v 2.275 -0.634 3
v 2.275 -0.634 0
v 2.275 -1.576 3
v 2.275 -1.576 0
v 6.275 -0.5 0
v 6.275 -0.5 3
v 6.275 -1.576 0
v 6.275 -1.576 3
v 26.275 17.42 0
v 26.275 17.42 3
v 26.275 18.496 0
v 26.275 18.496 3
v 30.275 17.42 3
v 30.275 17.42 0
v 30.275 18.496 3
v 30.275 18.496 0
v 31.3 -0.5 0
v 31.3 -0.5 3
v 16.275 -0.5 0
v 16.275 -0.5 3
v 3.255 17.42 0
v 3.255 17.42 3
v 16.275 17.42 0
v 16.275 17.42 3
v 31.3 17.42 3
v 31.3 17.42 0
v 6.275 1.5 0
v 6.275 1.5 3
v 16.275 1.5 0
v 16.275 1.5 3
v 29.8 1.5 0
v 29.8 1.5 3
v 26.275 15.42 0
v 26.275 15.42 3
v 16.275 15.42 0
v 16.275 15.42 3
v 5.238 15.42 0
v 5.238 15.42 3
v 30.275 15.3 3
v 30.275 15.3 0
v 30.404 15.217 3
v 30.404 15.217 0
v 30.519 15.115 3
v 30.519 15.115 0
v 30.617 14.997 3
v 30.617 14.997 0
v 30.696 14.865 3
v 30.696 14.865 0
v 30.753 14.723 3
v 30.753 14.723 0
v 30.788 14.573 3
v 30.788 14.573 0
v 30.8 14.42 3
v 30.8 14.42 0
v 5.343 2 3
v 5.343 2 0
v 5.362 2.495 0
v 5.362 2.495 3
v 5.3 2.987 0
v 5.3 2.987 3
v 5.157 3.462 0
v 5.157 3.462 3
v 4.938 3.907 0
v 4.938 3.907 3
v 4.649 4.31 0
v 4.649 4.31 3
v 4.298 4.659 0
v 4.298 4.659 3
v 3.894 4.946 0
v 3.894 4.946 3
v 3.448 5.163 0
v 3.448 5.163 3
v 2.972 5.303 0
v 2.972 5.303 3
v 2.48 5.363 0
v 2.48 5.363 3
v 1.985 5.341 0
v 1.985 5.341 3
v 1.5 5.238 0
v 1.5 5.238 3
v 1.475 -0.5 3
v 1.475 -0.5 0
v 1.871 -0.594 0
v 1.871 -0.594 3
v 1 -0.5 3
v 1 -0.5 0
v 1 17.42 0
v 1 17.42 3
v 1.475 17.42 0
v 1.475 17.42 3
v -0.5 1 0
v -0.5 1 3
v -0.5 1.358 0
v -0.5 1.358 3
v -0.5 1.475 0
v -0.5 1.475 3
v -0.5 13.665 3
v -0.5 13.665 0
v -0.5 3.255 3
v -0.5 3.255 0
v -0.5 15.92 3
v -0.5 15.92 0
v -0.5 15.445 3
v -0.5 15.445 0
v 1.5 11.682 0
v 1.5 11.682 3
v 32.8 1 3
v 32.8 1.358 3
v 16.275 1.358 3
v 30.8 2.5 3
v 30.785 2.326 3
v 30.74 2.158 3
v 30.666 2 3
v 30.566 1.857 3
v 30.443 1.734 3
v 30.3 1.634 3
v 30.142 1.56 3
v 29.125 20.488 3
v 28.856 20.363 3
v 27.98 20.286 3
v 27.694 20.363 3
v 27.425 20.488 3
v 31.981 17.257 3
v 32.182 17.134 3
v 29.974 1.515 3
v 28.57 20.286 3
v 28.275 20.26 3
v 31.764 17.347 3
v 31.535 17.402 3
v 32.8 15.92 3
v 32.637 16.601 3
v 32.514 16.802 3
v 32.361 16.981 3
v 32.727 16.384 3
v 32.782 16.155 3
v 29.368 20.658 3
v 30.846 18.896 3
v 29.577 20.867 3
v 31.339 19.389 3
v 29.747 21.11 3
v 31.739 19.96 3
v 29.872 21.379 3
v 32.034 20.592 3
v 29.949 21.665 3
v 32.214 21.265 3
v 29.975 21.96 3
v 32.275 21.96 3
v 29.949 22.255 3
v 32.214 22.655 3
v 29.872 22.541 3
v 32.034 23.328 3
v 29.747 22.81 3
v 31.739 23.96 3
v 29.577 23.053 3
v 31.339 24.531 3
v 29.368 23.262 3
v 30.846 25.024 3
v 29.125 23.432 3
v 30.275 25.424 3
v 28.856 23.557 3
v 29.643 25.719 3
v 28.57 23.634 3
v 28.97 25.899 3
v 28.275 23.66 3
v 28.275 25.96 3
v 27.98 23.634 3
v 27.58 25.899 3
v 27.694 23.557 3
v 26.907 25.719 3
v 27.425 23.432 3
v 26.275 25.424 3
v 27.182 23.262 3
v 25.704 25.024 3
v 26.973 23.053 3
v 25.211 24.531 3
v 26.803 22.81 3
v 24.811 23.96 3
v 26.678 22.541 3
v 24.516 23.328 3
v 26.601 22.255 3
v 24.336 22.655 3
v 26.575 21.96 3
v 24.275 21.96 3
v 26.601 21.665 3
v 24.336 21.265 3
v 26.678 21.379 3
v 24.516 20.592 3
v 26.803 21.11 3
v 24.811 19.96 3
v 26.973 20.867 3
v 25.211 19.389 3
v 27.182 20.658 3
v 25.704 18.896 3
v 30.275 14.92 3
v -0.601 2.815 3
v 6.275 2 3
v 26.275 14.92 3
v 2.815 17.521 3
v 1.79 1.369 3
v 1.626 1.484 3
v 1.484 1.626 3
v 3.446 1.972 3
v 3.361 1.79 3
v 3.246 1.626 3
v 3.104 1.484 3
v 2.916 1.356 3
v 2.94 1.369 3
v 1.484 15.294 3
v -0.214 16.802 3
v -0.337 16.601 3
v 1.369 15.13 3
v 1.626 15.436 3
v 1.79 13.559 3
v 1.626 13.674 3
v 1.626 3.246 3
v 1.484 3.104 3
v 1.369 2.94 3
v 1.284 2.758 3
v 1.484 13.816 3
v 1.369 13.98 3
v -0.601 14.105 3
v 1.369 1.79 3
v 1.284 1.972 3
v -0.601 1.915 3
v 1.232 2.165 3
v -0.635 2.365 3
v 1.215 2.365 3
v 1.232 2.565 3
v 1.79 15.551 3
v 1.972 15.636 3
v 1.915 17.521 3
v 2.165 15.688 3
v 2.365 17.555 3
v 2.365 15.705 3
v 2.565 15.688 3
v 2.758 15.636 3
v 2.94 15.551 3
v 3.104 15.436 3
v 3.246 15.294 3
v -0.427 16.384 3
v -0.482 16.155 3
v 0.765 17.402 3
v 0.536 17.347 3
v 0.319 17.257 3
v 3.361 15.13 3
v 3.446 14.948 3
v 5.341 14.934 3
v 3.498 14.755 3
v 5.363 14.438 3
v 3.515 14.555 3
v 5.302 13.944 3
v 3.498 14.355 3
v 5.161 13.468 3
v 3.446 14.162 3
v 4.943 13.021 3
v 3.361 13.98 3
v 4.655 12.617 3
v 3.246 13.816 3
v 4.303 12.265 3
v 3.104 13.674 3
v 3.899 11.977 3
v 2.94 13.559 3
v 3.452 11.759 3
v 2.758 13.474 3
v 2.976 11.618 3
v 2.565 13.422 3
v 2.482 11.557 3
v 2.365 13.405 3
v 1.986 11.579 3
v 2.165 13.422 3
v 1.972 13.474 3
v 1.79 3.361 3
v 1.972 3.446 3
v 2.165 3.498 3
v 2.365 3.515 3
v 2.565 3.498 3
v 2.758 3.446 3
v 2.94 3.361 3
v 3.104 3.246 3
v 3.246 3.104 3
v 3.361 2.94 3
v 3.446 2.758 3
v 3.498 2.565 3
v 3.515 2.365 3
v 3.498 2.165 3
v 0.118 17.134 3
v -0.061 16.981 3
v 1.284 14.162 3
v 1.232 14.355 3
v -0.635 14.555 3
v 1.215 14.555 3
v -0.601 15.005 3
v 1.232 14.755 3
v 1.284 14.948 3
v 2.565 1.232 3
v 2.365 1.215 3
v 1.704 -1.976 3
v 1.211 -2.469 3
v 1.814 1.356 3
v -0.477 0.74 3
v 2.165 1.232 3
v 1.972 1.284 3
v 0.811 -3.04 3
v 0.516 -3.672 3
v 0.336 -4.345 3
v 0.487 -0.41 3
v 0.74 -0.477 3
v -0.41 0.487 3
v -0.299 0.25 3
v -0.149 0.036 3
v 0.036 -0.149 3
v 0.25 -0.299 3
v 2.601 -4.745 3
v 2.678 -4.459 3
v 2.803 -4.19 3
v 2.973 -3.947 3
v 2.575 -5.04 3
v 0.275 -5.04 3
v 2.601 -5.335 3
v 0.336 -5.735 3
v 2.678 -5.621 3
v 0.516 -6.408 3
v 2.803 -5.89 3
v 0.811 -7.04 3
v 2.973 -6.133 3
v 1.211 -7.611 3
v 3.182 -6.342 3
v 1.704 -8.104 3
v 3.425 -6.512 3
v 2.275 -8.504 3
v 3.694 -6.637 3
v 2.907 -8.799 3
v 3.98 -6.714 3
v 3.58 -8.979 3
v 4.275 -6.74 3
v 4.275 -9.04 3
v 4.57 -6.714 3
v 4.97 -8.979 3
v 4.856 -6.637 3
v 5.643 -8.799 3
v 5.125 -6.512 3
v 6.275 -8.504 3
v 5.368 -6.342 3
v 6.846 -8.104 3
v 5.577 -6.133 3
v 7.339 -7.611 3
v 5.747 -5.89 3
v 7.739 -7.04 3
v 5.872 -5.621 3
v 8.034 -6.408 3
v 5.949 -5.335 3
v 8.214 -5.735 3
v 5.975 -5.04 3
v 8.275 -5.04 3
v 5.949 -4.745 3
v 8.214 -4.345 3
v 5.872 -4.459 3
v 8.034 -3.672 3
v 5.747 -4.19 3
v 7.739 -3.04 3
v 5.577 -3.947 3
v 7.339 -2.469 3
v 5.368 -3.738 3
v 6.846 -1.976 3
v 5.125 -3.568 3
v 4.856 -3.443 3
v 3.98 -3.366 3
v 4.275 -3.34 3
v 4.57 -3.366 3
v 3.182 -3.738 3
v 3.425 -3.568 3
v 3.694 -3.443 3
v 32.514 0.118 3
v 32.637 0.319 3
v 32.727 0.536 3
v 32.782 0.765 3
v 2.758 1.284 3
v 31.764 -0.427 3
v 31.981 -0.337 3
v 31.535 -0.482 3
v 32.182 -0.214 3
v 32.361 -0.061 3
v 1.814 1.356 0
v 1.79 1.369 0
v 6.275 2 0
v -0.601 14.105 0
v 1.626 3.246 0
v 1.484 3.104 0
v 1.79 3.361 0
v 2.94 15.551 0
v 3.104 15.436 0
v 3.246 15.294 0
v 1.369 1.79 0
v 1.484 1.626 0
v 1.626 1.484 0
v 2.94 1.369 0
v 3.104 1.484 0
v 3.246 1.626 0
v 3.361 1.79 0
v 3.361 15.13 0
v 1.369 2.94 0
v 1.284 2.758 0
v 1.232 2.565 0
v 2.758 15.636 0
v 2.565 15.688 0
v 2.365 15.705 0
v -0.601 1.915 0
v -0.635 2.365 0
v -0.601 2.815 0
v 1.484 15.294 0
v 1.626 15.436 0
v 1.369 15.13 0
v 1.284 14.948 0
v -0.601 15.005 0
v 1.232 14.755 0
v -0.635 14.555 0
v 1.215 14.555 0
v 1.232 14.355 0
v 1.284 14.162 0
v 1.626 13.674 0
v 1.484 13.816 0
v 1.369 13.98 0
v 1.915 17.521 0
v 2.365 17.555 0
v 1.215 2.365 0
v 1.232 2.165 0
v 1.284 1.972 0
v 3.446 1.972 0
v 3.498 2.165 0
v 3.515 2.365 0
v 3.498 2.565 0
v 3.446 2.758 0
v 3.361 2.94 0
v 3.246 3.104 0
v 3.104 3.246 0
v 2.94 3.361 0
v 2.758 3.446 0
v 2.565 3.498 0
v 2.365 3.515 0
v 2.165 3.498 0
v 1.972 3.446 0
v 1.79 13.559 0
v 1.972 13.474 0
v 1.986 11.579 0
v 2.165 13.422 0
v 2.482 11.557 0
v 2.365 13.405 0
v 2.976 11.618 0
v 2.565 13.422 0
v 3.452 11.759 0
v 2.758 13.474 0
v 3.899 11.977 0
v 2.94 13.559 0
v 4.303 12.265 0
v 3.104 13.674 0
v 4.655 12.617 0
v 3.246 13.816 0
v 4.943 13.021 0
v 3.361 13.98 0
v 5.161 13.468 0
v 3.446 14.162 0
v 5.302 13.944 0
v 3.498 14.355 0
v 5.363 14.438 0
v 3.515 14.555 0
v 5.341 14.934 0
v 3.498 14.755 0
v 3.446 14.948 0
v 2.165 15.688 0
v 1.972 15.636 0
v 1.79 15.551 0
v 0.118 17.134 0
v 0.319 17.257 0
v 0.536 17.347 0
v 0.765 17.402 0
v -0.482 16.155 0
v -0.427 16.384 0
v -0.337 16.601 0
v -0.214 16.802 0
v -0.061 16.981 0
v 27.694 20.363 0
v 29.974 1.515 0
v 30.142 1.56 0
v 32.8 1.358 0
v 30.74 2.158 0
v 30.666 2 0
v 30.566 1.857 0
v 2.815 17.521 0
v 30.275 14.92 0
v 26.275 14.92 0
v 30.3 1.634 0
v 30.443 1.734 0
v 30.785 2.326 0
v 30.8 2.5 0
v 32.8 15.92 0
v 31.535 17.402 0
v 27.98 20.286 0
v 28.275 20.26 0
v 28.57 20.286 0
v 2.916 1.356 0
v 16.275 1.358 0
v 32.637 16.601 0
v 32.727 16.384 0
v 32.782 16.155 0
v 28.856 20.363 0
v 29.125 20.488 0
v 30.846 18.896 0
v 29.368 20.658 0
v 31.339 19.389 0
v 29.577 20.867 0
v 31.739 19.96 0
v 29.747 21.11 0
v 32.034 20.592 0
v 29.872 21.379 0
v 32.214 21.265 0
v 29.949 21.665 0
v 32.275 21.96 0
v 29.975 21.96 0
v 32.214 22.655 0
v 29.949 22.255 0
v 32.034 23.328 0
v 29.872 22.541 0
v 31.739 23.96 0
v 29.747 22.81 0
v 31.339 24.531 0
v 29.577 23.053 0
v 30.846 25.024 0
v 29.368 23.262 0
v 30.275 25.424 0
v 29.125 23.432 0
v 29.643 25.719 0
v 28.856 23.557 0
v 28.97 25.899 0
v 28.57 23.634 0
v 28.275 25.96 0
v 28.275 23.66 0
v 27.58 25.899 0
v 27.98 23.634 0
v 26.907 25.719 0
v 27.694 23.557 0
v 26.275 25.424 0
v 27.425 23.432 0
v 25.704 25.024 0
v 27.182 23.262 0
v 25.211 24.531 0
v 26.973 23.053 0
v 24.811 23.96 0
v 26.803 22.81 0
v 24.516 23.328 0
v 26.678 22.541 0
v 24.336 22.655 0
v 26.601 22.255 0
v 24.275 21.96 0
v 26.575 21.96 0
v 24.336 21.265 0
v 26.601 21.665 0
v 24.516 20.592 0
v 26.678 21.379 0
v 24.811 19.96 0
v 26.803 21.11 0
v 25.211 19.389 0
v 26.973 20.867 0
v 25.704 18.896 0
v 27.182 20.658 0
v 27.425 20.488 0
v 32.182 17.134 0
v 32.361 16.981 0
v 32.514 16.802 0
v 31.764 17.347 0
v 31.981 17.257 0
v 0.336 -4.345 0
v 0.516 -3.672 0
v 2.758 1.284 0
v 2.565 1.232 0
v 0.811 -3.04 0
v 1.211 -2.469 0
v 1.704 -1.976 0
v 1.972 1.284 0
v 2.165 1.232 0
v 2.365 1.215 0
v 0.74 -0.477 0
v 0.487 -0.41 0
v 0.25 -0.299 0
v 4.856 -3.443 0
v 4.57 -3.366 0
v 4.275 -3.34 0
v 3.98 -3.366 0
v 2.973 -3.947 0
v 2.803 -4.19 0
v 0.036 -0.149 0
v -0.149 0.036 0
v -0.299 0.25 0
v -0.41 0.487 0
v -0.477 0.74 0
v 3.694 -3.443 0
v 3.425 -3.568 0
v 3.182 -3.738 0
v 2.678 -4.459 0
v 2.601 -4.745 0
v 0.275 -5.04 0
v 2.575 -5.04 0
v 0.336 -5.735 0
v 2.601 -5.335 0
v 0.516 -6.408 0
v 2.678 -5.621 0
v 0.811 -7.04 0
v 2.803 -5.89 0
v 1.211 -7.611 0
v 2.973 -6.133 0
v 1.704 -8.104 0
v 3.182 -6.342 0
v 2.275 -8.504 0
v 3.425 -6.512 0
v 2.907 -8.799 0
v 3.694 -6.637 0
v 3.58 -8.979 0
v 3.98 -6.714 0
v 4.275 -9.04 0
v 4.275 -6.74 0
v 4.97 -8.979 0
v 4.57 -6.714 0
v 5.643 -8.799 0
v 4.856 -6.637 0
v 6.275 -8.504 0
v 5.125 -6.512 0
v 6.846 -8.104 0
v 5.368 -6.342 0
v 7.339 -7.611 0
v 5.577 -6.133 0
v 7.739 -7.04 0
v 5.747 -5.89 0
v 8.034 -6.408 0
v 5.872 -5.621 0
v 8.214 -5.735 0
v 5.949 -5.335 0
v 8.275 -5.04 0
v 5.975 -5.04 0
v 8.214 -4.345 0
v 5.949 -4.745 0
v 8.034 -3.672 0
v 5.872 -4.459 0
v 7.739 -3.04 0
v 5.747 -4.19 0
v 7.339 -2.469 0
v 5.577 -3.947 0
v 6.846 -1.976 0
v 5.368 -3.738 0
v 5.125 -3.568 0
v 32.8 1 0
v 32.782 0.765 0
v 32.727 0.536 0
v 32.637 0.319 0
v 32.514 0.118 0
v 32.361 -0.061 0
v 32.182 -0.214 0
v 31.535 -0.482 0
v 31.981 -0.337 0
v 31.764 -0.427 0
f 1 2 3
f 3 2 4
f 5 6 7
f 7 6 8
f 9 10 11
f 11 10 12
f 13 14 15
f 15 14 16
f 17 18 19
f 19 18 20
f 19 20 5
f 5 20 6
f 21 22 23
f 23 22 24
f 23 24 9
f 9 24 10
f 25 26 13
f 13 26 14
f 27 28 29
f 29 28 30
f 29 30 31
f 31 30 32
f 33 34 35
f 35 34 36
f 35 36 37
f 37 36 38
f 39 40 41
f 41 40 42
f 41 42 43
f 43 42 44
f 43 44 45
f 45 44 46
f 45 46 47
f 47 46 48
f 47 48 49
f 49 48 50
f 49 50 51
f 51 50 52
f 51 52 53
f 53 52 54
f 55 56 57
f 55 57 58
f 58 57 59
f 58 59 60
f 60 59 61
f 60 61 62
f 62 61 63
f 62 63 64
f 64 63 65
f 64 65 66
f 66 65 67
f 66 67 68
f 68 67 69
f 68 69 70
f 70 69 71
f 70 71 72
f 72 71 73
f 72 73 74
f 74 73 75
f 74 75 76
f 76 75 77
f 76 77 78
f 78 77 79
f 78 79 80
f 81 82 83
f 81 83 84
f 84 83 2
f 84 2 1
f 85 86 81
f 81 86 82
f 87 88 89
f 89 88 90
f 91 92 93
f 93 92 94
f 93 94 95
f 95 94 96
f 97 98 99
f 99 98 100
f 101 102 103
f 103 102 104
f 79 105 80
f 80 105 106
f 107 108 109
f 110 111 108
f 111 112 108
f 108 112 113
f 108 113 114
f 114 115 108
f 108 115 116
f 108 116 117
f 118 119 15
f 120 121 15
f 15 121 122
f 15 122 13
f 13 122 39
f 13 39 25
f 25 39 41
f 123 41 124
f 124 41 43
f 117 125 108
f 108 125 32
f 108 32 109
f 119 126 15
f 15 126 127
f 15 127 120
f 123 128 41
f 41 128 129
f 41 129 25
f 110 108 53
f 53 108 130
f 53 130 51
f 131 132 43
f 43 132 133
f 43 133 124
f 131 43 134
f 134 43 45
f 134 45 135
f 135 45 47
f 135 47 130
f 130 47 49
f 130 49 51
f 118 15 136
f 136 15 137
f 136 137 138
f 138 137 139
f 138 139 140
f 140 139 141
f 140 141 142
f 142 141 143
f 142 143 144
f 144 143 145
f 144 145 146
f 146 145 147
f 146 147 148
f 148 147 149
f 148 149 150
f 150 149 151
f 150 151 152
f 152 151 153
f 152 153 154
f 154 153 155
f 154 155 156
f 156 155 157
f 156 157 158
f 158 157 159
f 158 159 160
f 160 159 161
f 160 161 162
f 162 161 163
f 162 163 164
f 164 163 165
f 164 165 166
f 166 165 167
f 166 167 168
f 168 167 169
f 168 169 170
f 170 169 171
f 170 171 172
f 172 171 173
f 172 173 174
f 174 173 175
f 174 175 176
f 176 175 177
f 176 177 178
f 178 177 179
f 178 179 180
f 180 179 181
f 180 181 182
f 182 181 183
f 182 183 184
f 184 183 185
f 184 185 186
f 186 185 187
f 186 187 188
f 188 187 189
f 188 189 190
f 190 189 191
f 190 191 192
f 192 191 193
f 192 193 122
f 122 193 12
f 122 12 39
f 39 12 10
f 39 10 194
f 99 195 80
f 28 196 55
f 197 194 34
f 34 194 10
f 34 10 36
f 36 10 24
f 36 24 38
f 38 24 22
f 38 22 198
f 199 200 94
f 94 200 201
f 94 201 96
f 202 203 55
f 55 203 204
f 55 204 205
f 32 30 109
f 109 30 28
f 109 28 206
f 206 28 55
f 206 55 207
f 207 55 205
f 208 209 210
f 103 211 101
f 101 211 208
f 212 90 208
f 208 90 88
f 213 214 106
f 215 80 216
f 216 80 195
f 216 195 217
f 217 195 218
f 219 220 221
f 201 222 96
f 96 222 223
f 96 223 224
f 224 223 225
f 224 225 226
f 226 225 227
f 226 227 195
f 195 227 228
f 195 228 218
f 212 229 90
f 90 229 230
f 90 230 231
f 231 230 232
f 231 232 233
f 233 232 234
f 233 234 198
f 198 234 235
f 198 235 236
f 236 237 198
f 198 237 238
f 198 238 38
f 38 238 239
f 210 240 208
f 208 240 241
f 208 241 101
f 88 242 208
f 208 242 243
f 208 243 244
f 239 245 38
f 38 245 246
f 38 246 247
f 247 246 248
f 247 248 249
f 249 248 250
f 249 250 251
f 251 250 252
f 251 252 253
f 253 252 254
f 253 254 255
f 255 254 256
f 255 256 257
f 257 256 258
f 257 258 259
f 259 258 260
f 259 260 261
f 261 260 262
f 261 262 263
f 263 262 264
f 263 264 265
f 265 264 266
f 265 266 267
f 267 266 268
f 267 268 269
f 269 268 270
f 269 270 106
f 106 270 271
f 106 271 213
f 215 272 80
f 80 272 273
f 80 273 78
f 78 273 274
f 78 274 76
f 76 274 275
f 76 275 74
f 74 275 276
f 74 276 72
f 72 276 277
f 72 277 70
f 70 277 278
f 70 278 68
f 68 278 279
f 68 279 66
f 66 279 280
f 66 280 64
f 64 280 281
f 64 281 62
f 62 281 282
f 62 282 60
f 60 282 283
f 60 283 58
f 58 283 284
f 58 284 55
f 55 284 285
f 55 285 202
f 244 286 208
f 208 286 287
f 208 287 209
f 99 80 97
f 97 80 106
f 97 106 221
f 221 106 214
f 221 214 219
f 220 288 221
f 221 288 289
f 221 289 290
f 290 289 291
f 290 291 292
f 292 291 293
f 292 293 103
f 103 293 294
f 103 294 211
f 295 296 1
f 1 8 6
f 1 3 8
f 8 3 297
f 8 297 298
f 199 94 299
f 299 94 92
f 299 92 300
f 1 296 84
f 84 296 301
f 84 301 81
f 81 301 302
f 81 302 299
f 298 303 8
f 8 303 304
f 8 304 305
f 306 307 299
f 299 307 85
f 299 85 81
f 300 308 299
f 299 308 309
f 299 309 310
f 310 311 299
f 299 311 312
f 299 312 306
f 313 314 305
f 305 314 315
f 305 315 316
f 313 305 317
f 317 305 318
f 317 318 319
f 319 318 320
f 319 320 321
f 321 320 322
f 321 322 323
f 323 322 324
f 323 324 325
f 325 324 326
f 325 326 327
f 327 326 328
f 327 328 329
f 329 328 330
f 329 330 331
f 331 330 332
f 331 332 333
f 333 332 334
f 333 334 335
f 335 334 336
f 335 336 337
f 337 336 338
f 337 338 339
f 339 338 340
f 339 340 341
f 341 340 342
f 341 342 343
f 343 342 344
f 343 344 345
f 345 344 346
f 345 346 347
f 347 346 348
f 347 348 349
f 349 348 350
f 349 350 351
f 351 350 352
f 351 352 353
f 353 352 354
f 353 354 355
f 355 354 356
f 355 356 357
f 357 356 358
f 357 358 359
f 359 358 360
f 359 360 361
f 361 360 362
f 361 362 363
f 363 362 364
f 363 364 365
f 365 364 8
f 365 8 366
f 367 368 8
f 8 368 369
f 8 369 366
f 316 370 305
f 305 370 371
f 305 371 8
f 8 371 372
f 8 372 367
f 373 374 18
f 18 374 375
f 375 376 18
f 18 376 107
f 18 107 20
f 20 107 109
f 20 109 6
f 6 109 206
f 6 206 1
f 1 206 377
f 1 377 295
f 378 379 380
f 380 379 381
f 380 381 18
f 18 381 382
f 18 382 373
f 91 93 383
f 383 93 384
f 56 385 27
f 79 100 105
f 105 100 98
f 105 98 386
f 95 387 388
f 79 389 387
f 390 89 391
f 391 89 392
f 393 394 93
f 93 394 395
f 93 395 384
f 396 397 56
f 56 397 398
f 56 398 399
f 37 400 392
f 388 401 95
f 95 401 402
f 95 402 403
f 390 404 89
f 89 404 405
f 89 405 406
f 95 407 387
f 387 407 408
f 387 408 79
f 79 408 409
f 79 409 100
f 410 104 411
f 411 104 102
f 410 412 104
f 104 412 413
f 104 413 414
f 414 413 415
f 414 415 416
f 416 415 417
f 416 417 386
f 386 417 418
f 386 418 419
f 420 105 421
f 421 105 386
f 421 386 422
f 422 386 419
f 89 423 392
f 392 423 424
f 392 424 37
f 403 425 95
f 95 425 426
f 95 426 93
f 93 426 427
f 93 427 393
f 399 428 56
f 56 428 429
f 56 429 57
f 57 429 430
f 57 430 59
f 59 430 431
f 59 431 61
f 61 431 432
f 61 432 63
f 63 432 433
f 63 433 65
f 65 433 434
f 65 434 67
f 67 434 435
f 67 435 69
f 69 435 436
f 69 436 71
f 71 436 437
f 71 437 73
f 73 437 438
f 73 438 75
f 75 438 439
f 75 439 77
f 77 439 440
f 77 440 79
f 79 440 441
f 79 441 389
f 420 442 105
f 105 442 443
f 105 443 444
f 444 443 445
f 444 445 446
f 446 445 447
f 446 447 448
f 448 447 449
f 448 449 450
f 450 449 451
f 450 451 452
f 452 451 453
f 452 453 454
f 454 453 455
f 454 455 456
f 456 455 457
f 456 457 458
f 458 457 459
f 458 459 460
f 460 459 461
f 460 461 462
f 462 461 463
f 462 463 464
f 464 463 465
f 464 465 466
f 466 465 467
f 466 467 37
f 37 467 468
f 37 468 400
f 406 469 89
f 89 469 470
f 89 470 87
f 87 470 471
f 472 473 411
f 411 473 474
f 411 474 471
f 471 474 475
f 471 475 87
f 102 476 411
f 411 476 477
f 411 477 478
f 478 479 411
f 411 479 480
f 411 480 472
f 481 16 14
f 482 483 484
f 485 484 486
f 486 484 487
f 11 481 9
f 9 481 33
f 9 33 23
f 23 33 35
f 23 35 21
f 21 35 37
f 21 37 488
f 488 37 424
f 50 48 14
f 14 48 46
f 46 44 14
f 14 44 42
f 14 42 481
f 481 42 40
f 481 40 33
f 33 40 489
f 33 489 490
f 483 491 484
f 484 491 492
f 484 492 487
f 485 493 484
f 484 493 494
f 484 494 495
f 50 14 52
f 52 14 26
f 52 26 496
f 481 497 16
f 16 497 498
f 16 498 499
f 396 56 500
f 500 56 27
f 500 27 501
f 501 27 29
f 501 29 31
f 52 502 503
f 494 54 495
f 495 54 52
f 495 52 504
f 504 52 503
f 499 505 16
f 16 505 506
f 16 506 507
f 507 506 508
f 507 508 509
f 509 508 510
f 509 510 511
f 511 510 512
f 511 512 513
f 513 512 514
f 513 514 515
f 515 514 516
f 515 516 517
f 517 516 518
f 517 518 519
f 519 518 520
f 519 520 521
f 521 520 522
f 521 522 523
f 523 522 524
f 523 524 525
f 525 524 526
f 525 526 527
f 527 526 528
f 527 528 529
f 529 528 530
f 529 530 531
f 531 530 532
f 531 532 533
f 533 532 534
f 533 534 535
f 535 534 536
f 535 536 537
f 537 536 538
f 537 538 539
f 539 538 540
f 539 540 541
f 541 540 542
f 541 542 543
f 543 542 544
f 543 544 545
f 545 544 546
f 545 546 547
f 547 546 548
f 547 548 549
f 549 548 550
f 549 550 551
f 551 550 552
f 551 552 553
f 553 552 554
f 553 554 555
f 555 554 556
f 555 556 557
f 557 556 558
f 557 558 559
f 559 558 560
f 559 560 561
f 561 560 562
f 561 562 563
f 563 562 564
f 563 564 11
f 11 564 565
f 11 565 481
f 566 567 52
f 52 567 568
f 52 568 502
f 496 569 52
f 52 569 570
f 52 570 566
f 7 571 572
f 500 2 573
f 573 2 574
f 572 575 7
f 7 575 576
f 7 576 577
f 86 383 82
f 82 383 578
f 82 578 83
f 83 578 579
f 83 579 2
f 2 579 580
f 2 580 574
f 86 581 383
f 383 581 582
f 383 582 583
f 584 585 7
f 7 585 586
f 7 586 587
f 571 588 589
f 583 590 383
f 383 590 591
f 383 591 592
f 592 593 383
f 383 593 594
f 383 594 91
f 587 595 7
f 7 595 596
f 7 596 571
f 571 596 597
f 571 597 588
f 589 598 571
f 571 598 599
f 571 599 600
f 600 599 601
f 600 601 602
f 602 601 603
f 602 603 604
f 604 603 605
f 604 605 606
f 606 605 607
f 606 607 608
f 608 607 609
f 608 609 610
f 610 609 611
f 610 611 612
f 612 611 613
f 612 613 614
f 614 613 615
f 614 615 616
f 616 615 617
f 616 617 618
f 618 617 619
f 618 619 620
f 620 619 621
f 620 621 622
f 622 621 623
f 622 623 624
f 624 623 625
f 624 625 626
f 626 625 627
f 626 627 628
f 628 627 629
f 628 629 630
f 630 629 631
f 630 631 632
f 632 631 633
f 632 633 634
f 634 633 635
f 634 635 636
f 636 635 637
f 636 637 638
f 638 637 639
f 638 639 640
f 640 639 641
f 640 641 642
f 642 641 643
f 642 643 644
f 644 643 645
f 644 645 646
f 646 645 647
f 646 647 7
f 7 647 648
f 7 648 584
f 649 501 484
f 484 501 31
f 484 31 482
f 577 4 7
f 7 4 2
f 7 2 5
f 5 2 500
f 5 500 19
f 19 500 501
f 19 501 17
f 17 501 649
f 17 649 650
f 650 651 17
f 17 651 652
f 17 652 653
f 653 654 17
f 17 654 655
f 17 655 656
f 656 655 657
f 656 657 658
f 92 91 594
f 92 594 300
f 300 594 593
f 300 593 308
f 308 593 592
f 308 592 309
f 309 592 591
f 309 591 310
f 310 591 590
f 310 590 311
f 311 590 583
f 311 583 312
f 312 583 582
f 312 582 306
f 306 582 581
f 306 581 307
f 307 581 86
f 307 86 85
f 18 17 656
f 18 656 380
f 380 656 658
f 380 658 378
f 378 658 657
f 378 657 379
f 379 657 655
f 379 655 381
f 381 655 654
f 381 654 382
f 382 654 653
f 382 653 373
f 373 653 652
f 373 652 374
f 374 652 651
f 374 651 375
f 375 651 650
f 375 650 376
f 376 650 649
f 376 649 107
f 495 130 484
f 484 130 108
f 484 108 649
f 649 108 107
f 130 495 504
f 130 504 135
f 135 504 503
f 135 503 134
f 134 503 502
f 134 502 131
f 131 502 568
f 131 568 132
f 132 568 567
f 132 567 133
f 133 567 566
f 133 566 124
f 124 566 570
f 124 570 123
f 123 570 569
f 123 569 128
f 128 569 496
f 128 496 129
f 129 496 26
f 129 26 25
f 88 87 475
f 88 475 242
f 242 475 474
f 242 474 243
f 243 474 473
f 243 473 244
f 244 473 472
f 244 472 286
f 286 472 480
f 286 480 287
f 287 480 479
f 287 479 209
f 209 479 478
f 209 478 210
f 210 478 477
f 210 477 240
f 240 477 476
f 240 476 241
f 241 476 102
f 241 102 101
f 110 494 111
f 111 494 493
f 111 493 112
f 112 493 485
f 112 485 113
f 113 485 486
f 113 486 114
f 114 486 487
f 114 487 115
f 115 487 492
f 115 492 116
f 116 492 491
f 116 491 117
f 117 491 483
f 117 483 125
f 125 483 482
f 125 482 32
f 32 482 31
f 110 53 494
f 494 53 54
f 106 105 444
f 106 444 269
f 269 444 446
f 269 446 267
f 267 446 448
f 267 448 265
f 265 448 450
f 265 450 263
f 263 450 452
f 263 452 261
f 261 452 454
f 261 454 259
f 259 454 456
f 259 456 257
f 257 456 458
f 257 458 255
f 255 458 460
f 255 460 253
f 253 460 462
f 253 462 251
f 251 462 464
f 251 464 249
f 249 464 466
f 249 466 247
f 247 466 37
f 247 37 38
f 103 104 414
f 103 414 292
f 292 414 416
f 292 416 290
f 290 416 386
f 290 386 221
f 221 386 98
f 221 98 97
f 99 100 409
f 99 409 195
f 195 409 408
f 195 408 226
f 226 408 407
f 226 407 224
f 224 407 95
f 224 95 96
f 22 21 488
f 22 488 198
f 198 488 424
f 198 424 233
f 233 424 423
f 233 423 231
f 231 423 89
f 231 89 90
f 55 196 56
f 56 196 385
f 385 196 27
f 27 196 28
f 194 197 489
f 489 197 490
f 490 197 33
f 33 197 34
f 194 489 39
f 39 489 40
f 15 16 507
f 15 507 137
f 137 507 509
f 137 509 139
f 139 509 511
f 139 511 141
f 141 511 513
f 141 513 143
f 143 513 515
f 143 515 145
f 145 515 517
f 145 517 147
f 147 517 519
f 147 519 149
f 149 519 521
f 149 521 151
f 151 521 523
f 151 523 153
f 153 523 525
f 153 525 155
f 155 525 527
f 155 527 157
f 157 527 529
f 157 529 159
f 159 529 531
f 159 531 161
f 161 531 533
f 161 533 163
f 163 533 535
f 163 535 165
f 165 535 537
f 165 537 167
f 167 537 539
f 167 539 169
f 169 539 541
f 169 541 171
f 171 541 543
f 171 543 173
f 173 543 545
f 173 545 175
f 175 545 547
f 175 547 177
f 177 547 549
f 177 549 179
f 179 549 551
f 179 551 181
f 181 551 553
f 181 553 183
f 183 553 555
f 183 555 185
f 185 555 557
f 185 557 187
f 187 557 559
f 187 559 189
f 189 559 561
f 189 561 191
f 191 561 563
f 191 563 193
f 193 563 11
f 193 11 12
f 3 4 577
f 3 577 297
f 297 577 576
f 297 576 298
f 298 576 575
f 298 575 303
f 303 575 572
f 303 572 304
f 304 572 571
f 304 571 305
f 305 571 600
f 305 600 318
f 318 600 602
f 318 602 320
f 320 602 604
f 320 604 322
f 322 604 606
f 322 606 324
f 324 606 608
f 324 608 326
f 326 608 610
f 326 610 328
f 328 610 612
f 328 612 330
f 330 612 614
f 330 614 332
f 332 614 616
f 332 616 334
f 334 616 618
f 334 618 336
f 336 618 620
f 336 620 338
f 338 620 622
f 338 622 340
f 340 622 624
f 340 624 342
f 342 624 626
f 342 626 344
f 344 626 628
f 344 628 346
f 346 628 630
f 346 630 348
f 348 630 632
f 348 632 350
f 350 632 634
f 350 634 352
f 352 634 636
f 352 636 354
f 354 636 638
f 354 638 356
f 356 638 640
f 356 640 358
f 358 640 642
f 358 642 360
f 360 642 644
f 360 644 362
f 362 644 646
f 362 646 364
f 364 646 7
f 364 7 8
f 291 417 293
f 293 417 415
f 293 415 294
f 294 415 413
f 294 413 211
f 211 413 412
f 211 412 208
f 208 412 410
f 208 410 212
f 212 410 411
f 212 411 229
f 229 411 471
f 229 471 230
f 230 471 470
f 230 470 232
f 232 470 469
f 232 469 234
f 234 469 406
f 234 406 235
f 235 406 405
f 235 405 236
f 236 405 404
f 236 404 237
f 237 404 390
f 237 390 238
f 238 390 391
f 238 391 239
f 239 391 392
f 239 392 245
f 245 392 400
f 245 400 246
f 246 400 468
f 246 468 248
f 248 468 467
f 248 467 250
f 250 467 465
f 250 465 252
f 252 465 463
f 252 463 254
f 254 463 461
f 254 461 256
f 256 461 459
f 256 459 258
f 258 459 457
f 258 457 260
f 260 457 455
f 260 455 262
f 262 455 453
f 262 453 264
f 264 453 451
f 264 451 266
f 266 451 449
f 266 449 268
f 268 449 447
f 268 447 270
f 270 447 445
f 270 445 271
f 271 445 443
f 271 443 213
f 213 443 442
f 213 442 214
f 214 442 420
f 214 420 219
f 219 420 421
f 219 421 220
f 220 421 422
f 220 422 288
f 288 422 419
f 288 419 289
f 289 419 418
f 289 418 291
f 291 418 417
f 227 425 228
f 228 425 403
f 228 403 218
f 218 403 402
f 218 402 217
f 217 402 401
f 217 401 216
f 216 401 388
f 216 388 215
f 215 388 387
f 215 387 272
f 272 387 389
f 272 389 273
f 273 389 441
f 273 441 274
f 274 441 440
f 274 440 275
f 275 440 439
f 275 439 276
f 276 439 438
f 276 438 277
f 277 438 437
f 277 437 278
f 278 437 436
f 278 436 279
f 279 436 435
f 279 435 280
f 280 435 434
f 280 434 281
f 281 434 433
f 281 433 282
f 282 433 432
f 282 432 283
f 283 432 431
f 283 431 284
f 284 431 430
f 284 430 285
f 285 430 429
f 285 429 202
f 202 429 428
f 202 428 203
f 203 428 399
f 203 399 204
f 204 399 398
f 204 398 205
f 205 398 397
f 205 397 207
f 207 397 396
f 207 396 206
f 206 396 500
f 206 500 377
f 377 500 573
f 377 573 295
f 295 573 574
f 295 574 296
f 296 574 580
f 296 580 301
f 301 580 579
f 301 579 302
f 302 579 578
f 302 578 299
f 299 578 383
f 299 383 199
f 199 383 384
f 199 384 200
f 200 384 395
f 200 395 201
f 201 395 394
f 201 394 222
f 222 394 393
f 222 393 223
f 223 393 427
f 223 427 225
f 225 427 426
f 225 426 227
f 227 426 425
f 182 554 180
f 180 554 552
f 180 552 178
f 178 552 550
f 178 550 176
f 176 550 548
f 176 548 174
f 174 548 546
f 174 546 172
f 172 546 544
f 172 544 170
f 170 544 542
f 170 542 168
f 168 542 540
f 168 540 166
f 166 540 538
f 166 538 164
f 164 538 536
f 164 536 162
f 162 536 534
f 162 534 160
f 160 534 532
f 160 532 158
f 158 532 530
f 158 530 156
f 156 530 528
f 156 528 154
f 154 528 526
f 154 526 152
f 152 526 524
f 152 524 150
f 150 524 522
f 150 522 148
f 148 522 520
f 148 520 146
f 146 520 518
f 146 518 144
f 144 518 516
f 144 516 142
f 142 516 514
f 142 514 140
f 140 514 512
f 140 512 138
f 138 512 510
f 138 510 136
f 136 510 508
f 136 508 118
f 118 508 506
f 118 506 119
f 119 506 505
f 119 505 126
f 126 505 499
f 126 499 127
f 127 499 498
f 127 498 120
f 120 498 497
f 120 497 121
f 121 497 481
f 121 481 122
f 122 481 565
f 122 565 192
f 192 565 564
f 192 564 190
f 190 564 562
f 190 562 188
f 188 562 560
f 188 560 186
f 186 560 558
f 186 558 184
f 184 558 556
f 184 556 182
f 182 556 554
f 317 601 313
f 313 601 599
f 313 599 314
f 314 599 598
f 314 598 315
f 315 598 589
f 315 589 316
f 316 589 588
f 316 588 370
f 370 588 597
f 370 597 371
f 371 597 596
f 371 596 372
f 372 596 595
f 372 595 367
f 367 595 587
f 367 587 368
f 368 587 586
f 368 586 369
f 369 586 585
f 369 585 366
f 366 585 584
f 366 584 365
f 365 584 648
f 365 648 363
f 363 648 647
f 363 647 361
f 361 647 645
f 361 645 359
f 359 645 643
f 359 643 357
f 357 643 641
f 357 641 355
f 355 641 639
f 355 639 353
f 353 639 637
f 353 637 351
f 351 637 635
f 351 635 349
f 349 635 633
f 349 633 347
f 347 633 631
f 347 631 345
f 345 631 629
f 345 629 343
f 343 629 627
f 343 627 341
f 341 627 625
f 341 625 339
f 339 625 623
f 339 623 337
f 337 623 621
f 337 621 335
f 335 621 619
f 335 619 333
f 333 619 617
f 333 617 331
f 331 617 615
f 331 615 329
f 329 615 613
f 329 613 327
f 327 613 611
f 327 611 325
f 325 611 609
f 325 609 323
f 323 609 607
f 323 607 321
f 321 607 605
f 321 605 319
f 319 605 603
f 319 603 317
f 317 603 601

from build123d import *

# Parameters (mm, degrees)
PCB_EDGE_SUPPORT_DEPTH       = 3
SKETCH_2_R                   = 3
PCB_SCREW_LANDS_DEPTH        = 3
SKETCH_3_W                   = 4
SKETCH_3_H                   = 7.04
FLOATING_MOUNT_BRIDGES_DEPTH = 3
SKETCH_4_R                   = 4
FLOATING_MOUNT_EARS_DEPTH    = 3
SKETCH_5_R                   = 1.15
PCB_M2_CLEARANCE_DEPTH       = 4
SKETCH_6_R                   = 1.7
M2_ADJUSTMENT_0P7_DEPTH      = 4


with BuildPart() as part:
    # 草图1 → PCB_edge_support (new body)
    with BuildSketch(Plane.XY):
        with BuildLine():
            Line((1, -0.5), (31.3, -0.5))
            ThreePointArc((31.3, -0.5), (32.360660172, -0.060660172), (32.8, 1))
            Line((32.8, 1), (32.8, 15.92))
            ThreePointArc((32.8, 15.92), (32.360660172, 16.980660172), (31.3, 17.42))
            Line((31.3, 17.42), (1, 17.42))
            ThreePointArc((1, 17.42), (-0.060660172, 16.980660172), (-0.5, 15.92))
            Line((-0.5, 15.92), (-0.5, 1))
            ThreePointArc((-0.5, 1), (-0.060660172, -0.060660172), (1, -0.5))
        make_face()
        with BuildLine():
            Line((2.5, 1.5), (29.8, 1.5))
            ThreePointArc((29.8, 1.5), (30.507106781, 1.792893219), (30.8, 2.5))
            Line((30.8, 2.5), (30.8, 14.42))
            ThreePointArc((30.8, 14.42), (30.507106781, 15.127106781), (29.8, 15.42))
            Line((29.8, 15.42), (2.5, 15.42))
            ThreePointArc((2.5, 15.42), (1.792893219, 15.127106781), (1.5, 14.42))
            Line((1.5, 14.42), (1.5, 2.5))
            ThreePointArc((1.5, 2.5), (1.792893219, 1.792893219), (2.5, 1.5))
        make_face(mode=Mode.SUBTRACT)
    extrude(amount=PCB_EDGE_SUPPORT_DEPTH)

    # 草图2 → PCB_screw_lands (add)
    with BuildSketch(Plane.XY):
        with Locations((2.365, 2.365)):
            Circle(SKETCH_2_R)
        with Locations((2.365, 14.555)):
            Circle(SKETCH_2_R)
    extrude(amount=PCB_SCREW_LANDS_DEPTH)

    # 草图3 → Floating_mount_bridges (add)
    with BuildSketch(Plane.XY):
        with Locations((4.275, -1.52)):
            Rectangle(SKETCH_3_W, SKETCH_3_H)
        with Locations((28.275, 18.44)):
            Rectangle(SKETCH_3_W, SKETCH_3_H)
    extrude(amount=FLOATING_MOUNT_BRIDGES_DEPTH)

    # 草图4 → Floating_mount_ears (add)
    with BuildSketch(Plane.XY):
        with Locations((4.275, -5.04)):
            Circle(SKETCH_4_R)
        with Locations((28.275, 21.96)):
            Circle(SKETCH_4_R)
    extrude(amount=FLOATING_MOUNT_EARS_DEPTH)

    # 草图5 → PCB_M2_clearance (cut)
    with BuildSketch(Plane.XY):
        with Locations((2.365, 2.365)):
            Circle(SKETCH_5_R)
        with Locations((2.365, 14.555)):
            Circle(SKETCH_5_R)
    extrude(amount=PCB_M2_CLEARANCE_DEPTH, mode=Mode.SUBTRACT)

    # 草图6 → M2_adjustment_0p7 (cut)
    with BuildSketch(Plane.XY):
        with Locations((4.275, -5.04)):
            Circle(SKETCH_6_R)
        with Locations((28.275, 21.96)):
            Circle(SKETCH_6_R)
    extrude(amount=M2_ADJUSTMENT_0P7_DEPTH, mode=Mode.SUBTRACT)


solid = part.part
